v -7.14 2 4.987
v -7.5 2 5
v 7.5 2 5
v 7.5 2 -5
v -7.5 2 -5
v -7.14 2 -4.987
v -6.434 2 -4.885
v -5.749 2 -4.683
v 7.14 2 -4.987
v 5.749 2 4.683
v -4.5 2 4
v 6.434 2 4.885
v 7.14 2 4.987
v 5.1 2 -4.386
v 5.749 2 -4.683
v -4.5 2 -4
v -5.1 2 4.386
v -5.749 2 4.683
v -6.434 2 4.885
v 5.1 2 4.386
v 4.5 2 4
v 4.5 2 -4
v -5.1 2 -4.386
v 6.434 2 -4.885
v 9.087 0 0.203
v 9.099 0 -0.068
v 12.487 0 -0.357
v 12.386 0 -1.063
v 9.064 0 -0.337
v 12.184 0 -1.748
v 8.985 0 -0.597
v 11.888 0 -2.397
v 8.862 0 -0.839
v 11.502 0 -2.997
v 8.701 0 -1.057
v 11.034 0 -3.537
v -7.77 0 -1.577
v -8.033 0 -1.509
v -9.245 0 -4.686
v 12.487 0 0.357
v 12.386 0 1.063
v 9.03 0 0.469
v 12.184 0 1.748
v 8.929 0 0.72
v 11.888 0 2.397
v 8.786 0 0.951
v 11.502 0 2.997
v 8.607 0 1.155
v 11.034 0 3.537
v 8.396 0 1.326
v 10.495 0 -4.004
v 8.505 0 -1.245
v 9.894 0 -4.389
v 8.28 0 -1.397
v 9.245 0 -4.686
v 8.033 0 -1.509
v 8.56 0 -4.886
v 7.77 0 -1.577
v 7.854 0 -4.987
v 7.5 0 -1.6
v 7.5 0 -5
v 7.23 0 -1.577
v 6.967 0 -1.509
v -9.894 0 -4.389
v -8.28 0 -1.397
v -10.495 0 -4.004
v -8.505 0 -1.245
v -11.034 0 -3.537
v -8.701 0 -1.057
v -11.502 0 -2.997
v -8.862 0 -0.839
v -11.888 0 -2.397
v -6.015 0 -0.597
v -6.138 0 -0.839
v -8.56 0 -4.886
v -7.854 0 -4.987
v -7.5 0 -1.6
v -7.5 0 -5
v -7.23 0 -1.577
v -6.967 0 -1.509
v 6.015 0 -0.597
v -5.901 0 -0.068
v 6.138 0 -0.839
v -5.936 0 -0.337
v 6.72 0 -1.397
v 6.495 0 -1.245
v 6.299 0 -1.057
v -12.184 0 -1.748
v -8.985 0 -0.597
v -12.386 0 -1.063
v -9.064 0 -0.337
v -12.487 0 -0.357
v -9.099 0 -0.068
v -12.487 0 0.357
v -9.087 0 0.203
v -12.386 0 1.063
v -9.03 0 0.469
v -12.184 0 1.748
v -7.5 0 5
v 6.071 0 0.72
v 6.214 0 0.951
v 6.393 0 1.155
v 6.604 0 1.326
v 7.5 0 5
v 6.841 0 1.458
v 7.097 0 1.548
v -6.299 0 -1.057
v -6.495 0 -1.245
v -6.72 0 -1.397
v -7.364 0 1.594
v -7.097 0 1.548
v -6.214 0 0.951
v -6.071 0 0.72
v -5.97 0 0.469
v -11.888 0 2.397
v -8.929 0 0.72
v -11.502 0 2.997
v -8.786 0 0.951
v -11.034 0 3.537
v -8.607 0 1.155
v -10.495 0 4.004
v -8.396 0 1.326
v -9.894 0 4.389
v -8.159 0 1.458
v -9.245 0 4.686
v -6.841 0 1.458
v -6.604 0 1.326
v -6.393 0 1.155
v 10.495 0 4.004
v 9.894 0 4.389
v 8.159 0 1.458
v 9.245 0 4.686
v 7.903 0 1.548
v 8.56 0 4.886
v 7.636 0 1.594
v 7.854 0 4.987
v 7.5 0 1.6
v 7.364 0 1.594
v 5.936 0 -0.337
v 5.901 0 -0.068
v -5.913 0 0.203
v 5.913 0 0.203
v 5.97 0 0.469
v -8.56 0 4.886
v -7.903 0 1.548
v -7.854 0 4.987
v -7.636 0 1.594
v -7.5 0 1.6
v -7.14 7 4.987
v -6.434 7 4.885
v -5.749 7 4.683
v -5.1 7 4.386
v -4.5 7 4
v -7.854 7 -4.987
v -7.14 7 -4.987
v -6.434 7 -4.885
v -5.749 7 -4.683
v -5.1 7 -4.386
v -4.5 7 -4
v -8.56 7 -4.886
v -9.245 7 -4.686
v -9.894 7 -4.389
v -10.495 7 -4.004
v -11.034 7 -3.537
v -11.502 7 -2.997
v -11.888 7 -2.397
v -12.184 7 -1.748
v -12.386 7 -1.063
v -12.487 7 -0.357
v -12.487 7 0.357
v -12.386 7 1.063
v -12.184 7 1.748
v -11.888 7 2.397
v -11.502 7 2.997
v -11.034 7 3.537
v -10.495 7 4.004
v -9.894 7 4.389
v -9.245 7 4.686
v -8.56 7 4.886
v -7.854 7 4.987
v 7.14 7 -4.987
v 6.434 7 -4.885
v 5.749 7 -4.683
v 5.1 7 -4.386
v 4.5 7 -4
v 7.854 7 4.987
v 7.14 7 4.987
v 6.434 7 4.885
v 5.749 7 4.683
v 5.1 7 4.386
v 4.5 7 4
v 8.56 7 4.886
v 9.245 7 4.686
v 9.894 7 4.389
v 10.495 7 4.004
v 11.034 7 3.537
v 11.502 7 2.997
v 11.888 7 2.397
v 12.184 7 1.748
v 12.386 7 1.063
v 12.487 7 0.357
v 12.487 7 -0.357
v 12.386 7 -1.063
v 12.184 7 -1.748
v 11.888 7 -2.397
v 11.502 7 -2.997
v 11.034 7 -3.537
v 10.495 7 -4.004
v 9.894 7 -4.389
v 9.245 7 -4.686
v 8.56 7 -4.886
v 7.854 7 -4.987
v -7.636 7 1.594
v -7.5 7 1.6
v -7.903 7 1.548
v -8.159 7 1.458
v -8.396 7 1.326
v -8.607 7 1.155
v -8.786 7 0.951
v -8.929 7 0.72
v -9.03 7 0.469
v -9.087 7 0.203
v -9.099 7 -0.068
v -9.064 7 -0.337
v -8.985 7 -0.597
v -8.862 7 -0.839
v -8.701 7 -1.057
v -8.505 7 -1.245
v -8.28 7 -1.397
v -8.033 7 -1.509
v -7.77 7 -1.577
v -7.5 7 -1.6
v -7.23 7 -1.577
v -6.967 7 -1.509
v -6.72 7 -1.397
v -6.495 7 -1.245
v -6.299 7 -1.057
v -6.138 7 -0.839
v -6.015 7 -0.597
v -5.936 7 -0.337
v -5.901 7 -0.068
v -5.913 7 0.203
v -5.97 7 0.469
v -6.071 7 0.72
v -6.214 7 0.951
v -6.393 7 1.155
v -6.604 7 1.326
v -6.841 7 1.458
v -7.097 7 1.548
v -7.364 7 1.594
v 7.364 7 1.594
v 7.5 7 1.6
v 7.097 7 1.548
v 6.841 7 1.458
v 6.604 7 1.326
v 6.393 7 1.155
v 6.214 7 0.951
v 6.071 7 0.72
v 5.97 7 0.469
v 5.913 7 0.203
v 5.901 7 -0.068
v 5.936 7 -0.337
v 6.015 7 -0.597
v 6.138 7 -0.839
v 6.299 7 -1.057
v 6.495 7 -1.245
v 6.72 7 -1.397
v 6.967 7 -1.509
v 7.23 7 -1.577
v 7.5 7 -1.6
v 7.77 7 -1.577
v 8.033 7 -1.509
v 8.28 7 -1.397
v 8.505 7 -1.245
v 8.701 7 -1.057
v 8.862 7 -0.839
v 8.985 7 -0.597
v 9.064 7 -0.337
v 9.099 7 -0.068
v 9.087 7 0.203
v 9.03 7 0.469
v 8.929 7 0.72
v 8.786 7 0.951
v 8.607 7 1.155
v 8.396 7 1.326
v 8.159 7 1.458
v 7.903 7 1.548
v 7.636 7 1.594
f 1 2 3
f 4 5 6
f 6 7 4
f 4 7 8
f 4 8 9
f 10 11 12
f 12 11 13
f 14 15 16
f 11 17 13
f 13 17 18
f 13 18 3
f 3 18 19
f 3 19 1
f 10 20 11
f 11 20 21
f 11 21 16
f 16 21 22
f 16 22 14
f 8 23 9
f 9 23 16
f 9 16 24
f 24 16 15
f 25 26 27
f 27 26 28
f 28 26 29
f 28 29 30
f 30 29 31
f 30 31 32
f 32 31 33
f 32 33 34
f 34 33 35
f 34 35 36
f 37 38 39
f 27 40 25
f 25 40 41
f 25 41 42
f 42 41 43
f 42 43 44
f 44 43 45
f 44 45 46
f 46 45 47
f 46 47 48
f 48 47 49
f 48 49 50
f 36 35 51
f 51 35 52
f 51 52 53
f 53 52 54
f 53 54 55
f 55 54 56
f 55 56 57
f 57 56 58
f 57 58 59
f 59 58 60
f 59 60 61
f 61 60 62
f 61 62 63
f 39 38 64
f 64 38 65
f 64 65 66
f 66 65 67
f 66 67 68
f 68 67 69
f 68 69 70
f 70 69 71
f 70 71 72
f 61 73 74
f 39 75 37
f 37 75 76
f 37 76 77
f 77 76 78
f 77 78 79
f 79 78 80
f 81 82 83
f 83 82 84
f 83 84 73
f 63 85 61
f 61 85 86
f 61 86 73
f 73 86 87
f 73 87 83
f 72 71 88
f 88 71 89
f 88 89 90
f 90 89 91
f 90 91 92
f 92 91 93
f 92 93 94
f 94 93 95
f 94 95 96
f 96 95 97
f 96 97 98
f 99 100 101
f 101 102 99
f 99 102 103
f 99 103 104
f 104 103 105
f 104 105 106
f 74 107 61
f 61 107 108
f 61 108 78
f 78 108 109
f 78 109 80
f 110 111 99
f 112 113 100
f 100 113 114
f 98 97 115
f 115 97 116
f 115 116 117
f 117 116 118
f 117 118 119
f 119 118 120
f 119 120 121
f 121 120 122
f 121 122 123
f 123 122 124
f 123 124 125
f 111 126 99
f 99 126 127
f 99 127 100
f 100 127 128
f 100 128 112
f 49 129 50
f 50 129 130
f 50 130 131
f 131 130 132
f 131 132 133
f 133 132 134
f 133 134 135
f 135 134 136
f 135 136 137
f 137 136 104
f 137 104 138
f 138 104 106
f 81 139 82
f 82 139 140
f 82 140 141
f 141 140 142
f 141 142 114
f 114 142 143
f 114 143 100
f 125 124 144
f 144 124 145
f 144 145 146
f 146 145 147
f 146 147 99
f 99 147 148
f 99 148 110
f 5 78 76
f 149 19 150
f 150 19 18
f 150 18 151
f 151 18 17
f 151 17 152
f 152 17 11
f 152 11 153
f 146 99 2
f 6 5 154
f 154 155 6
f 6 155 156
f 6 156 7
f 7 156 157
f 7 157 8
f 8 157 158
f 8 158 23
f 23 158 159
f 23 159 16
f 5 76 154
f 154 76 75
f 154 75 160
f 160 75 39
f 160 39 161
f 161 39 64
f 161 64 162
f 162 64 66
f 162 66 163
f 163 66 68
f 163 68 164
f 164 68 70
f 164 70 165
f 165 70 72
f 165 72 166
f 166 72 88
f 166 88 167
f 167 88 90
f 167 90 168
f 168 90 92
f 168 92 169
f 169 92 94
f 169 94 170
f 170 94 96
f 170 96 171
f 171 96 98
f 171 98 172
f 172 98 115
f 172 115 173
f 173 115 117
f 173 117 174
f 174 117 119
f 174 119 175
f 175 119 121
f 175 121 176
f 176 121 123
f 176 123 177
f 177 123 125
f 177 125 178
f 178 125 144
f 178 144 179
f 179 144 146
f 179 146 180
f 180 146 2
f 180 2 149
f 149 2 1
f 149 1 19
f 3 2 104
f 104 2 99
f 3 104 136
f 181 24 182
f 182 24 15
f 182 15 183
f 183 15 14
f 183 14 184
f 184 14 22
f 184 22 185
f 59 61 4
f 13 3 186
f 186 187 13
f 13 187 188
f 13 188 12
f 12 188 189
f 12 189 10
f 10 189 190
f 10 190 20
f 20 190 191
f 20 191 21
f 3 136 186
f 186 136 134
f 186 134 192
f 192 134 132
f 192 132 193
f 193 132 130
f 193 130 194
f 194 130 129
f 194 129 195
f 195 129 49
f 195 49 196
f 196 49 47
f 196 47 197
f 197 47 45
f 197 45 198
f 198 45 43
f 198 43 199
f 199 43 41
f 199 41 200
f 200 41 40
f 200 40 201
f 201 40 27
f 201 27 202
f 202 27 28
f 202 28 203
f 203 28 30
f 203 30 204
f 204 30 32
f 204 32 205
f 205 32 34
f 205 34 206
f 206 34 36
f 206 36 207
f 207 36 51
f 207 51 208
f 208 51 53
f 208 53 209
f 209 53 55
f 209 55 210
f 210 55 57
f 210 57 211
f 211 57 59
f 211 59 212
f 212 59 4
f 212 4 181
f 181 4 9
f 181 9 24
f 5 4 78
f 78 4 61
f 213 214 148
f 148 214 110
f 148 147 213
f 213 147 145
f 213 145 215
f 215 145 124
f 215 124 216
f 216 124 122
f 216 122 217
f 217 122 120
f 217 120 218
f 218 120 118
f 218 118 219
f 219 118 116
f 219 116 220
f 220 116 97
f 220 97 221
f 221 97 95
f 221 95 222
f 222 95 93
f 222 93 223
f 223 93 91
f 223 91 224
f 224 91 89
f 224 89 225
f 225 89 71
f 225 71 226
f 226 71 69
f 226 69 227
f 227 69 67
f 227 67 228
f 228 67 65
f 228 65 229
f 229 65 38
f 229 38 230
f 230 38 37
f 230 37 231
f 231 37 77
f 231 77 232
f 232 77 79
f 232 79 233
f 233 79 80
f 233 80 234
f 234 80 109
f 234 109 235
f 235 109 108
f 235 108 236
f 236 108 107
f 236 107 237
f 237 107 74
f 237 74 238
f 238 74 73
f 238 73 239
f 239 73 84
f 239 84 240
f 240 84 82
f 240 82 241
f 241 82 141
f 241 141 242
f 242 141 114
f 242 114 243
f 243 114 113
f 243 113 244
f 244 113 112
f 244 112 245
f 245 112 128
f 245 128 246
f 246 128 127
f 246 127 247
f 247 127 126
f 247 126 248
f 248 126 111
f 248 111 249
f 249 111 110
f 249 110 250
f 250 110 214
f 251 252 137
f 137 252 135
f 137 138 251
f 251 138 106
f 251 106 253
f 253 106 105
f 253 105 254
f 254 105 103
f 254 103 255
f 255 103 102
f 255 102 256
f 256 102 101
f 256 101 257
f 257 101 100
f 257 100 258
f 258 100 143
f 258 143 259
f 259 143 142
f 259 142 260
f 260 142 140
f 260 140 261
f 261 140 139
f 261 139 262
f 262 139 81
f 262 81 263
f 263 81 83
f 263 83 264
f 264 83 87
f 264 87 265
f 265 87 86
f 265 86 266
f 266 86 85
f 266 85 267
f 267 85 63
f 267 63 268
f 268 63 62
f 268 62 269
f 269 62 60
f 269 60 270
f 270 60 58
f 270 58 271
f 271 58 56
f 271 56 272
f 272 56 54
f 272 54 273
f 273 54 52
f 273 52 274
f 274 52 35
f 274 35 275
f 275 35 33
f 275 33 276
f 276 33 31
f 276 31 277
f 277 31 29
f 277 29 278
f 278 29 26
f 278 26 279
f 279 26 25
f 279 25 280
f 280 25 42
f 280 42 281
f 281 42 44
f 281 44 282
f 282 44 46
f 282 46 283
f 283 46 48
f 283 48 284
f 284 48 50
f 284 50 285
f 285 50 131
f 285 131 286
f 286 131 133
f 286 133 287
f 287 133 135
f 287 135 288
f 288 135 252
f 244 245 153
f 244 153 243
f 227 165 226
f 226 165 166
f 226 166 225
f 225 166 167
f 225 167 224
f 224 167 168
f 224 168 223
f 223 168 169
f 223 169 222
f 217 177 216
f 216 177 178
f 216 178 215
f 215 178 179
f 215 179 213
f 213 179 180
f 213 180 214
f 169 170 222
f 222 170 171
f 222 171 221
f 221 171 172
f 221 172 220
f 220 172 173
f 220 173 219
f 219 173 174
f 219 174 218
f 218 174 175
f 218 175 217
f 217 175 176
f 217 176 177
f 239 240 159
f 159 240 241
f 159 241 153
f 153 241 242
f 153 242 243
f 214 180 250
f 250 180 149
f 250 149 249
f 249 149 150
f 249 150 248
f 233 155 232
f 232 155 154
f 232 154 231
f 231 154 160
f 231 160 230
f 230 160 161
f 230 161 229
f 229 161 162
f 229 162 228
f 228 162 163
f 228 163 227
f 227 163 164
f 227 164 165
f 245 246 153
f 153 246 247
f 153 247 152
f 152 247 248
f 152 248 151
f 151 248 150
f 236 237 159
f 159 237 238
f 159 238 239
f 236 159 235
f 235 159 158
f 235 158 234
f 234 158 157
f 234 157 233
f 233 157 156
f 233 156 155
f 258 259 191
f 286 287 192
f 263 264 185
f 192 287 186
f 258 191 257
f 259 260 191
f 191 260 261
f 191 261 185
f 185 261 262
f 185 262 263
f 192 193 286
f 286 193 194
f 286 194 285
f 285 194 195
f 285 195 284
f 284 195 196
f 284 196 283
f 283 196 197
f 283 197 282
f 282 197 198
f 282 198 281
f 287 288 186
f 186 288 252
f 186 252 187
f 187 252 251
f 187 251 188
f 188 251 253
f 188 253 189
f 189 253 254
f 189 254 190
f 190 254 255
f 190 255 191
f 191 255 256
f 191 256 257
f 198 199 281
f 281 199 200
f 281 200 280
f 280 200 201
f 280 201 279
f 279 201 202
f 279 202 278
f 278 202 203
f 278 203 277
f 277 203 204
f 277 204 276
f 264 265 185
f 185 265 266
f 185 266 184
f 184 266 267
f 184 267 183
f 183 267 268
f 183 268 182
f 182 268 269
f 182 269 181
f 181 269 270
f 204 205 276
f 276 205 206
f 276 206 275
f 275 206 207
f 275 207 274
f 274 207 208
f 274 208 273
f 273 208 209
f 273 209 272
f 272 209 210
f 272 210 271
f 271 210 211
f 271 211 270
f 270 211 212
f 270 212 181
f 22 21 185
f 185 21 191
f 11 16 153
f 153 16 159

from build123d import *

# Parameters (mm, degrees)
SKETCH1_R           = 1.6
BOSS_EXTRUDE1_DEPTH = 2
SKETCH2_R           = 5
SKETCH2_R_2         = 1.6
BOSS_EXTRUDE2_DEPTH = 5
SKETCH3_W           = 9
SKETCH3_H           = 5
CUT_EXTRUDE1_DEPTH  = 11


with BuildPart() as part:
    # Sketch1 → Boss-Extrude1 (new body)
    with BuildSketch(Plane(origin=(0, 0, 0), x_dir=(1, 0, 0), z_dir=(0, 1, 0))):
        with BuildLine():
            Line((-7.5, 5), (7.5, 5))
            ThreePointArc((7.5, 5), (12.5, 0), (7.5, -5))
            Line((7.5, -5), (-7.5, -5))
            ThreePointArc((-7.5, -5), (-12.5, 0), (-7.5, 5))
        make_face()
        with Locations((-7.5, 0)):
            Circle(SKETCH1_R, mode=Mode.SUBTRACT)
        with Locations((7.5, 0)):
            Circle(SKETCH1_R, mode=Mode.SUBTRACT)
    extrude(amount=BOSS_EXTRUDE1_DEPTH)

    # Sketch2 → Boss-Extrude2 (add)
    with BuildSketch(Plane(origin=(0, 2, 0), x_dir=(1, 0, 0), z_dir=(0, 1, 0))):
        with Locations((-7.5, 0)):
            Circle(SKETCH2_R)
        with Locations((-7.5, 0)):
            Circle(SKETCH2_R_2, mode=Mode.SUBTRACT)
        with Locations((7.5, 0)):
            Circle(SKETCH2_R)
        with Locations((7.5, 0)):
            Circle(SKETCH2_R_2, mode=Mode.SUBTRACT)
    extrude(amount=BOSS_EXTRUDE2_DEPTH)

    # Sketch3 → Cut-Extrude1 (cut, through all)
    with BuildSketch(Plane.XY.offset(5)):
        with Locations((0, 4.5)):
            Rectangle(SKETCH3_W, SKETCH3_H)
    extrude(amount=-CUT_EXTRUDE1_DEPTH, mode=Mode.SUBTRACT)


solid = part.part
